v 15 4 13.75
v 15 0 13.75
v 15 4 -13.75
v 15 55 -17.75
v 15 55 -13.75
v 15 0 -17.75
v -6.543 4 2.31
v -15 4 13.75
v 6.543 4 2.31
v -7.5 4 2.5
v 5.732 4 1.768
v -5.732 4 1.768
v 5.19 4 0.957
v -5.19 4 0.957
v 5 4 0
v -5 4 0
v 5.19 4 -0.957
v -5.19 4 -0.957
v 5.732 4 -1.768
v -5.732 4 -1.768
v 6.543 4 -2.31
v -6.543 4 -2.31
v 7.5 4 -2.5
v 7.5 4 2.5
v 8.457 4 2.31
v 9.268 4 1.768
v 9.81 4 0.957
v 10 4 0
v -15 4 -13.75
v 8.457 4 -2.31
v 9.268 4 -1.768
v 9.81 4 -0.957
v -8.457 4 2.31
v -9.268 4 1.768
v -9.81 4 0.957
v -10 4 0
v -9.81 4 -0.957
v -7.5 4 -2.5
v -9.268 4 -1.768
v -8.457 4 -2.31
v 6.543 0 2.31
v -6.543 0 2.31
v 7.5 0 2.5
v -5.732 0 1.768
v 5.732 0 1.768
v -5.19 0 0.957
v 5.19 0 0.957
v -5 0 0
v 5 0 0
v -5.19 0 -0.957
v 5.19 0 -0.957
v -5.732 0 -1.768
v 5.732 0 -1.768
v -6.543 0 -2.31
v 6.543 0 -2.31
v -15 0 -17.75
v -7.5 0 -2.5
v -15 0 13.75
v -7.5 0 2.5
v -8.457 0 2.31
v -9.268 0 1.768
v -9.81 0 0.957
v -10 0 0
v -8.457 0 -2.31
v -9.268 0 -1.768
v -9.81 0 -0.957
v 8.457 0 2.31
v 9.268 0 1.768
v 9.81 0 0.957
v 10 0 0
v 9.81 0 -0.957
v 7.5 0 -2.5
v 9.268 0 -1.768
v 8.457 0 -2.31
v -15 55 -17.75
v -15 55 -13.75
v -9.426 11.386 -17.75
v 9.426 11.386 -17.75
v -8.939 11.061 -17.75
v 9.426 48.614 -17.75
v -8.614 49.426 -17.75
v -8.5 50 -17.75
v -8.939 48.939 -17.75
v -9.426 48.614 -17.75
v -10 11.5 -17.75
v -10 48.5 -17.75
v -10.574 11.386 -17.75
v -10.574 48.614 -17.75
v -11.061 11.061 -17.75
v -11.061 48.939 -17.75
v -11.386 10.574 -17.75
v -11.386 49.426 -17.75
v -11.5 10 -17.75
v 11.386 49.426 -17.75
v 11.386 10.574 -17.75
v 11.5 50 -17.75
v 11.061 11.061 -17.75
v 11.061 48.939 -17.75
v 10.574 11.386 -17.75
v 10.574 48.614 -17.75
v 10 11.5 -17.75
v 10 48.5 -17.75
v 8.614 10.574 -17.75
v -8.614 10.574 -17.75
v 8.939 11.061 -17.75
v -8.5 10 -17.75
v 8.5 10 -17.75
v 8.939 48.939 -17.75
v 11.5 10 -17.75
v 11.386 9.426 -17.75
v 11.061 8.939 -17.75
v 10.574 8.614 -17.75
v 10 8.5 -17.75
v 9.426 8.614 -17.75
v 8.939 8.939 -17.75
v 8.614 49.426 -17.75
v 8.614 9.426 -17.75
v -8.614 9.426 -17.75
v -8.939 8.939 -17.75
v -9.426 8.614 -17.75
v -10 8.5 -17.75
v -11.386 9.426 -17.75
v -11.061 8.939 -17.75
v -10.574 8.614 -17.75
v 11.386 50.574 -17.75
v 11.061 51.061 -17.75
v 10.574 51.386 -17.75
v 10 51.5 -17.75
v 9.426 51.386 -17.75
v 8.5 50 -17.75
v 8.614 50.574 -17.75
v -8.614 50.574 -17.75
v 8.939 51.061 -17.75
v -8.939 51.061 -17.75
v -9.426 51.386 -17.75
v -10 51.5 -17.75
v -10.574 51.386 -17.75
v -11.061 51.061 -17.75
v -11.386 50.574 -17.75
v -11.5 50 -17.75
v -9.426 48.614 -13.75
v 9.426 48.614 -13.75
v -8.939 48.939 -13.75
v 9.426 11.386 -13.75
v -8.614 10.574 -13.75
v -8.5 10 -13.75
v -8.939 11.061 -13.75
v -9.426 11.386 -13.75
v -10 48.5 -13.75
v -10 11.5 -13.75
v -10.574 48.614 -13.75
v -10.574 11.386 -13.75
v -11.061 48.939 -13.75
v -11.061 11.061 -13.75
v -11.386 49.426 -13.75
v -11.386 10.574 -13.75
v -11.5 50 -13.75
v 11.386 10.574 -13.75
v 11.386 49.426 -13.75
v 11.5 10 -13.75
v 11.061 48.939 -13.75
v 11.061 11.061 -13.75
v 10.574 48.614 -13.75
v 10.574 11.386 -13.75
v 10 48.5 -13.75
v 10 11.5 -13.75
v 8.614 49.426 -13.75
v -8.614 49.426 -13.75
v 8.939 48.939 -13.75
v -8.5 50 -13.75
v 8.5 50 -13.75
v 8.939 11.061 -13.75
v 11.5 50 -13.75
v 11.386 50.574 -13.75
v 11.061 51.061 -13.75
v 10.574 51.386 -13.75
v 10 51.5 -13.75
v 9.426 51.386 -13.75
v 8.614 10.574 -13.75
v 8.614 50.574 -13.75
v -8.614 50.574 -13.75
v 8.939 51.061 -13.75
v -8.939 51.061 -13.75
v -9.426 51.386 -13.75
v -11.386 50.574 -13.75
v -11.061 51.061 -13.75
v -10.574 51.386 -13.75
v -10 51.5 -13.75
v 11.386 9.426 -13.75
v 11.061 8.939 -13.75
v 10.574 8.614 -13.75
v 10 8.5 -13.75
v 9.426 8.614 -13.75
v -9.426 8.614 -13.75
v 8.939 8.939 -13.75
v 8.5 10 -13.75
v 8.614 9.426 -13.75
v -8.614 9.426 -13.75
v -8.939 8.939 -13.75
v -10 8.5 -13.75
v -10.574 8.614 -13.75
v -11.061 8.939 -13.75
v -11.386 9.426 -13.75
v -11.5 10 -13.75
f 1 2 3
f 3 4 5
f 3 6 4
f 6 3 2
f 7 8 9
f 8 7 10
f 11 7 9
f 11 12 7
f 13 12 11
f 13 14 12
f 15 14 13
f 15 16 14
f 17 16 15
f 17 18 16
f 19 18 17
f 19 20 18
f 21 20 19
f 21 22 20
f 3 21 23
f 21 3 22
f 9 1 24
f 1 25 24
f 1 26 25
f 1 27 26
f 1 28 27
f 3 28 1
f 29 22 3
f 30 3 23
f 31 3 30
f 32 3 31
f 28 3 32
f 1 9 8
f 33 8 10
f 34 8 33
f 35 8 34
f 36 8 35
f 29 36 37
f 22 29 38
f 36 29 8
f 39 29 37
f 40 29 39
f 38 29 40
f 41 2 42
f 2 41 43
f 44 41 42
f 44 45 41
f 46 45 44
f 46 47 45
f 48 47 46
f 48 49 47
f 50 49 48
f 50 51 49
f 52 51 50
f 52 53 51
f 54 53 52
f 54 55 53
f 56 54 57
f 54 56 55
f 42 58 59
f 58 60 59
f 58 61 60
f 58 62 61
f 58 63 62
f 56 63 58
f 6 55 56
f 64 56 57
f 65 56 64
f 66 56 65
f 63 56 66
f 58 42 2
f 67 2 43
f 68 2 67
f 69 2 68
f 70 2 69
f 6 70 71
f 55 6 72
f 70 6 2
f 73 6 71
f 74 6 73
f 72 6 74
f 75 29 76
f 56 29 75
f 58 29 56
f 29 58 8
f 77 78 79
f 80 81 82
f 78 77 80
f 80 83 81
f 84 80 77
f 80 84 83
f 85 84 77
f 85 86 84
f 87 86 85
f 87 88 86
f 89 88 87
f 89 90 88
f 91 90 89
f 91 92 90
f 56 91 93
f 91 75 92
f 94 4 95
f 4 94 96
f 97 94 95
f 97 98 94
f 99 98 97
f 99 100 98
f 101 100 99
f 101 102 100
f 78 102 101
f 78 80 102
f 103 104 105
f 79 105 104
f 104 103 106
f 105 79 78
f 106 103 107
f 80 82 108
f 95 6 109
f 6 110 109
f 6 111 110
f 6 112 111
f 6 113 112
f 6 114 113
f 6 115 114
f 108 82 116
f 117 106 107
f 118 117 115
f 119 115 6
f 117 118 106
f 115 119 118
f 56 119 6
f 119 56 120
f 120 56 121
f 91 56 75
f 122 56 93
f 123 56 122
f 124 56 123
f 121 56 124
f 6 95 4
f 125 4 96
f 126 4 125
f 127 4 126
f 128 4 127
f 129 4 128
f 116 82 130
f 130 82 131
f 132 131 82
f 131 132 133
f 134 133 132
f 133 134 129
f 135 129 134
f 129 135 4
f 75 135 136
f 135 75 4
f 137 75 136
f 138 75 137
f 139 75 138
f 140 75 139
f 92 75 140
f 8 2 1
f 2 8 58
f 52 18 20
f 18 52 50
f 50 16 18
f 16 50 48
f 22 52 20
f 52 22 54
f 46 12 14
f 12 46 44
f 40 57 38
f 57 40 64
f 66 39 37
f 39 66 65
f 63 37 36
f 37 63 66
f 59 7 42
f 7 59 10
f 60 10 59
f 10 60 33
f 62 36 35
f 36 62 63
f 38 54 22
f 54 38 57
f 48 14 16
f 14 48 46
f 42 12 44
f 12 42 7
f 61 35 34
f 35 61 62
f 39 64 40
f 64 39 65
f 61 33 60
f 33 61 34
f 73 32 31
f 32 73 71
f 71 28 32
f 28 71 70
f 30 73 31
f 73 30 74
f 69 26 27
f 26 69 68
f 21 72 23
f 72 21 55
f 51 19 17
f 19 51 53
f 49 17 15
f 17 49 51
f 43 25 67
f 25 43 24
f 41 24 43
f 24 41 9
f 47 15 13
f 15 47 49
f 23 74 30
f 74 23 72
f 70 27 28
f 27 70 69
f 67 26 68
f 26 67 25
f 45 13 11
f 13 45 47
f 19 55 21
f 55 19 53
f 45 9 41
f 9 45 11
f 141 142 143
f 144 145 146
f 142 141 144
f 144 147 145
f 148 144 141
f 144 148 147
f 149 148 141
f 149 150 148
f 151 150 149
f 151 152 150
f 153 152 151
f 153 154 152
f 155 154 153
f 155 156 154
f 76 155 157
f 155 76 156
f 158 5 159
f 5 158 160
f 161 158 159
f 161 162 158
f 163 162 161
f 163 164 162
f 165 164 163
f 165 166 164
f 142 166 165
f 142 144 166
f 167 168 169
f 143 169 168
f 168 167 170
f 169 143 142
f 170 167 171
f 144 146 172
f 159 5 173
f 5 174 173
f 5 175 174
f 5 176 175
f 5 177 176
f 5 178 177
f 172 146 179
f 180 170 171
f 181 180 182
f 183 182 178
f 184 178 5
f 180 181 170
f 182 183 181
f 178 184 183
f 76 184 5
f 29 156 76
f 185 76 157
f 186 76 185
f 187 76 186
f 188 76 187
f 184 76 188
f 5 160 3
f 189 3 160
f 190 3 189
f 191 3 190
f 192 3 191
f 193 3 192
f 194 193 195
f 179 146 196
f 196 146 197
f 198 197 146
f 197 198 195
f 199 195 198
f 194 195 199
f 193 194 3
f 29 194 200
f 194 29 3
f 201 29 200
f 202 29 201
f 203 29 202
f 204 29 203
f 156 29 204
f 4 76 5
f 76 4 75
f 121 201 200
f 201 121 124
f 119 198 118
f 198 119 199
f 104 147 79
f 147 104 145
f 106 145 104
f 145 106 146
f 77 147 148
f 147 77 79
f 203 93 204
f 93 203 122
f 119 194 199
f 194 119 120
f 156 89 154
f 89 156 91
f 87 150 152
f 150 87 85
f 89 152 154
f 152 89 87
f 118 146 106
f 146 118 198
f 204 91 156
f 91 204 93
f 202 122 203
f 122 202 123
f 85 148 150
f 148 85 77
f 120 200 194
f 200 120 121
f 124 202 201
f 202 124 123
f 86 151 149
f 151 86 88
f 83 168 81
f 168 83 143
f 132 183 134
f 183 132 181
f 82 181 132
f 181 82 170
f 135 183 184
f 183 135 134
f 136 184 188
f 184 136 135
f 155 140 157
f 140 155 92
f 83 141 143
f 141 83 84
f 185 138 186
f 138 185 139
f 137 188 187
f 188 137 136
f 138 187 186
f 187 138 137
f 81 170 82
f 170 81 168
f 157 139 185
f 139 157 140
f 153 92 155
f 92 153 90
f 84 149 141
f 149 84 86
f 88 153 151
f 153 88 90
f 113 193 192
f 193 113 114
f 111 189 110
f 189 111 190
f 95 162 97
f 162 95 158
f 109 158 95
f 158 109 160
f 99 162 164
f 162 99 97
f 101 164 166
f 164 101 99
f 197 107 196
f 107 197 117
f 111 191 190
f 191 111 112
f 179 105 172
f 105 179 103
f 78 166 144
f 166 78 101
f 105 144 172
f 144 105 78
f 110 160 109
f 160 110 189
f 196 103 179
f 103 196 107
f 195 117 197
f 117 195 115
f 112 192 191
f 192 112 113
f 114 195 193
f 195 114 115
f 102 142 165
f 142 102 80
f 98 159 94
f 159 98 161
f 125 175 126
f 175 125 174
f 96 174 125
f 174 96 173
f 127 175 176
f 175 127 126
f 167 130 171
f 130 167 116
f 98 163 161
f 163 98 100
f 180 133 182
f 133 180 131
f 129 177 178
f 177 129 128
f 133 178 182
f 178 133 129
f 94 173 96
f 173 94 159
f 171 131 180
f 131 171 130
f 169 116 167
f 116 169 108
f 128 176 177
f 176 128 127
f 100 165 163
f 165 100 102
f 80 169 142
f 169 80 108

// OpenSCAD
lmh_w=20;
lmh_l=40;
lmh_d=3;
lmh_h=5;

b_rim=5;
b_thick=4;
bz_w=lmh_w+b_rim+b_rim;
bz_l=lmh_l+b_rim+b_rim;
by=27.5+b_thick;
bx=bz_w;
bmh_d=5;
bmh_w=15;

fr=27.5;
fn=16;

rotate([-90,0,0]) {
    //Sample alu profile
    //#translate([-100, -fr/2, -fr]) cube([200,fr,fr]);

    //alu profile base
    translate([-bx/2, -(by-b_thick)/2, 0]) difference() {
        cube([bx,by,b_thick]);
        #translate([bx/2-(bmh_w/2), (by-b_thick)/2, b_thick/2]) cylinder(h=b_thick+2,d=bmh_d, center=true, $fn=fn);
        #translate([bx/2+(bmh_w/2), (by-b_thick)/2, b_thick/2]) cylinder(h=b_thick+2,d=bmh_d, center=true, $fn=fn);
    }

    //laser base
    translate([-bx/2, 27.5/2+b_thick, 0]) rotate([90,0,0])
    difference() {
        cube([bz_w,bz_l+lmh_h,b_thick]);
        #translate([bz_w/2-(lmh_w/2), bz_l/2-(lmh_l/2)+lmh_h, -1]) cylinder(h=b_thick+2,d=lmh_d, $fn=fn);
        #translate([bz_w/2-(lmh_w/2), bz_l/2+(lmh_l/2)+lmh_h, -1]) cylinder(h=b_thick+2,d=lmh_d, $fn=fn);
        #translate([bz_w/2+(lmh_w/2), bz_l/2-(lmh_l/2)+lmh_h, -1]) cylinder(h=b_thick+2,d=lmh_d, $fn=fn);
        #translate([bz_w/2+(lmh_w/2), bz_l/2+(lmh_l/2)+lmh_h, -1]) cylinder(h=b_thick+2,d=lmh_d, $fn=fn);
    }

}
